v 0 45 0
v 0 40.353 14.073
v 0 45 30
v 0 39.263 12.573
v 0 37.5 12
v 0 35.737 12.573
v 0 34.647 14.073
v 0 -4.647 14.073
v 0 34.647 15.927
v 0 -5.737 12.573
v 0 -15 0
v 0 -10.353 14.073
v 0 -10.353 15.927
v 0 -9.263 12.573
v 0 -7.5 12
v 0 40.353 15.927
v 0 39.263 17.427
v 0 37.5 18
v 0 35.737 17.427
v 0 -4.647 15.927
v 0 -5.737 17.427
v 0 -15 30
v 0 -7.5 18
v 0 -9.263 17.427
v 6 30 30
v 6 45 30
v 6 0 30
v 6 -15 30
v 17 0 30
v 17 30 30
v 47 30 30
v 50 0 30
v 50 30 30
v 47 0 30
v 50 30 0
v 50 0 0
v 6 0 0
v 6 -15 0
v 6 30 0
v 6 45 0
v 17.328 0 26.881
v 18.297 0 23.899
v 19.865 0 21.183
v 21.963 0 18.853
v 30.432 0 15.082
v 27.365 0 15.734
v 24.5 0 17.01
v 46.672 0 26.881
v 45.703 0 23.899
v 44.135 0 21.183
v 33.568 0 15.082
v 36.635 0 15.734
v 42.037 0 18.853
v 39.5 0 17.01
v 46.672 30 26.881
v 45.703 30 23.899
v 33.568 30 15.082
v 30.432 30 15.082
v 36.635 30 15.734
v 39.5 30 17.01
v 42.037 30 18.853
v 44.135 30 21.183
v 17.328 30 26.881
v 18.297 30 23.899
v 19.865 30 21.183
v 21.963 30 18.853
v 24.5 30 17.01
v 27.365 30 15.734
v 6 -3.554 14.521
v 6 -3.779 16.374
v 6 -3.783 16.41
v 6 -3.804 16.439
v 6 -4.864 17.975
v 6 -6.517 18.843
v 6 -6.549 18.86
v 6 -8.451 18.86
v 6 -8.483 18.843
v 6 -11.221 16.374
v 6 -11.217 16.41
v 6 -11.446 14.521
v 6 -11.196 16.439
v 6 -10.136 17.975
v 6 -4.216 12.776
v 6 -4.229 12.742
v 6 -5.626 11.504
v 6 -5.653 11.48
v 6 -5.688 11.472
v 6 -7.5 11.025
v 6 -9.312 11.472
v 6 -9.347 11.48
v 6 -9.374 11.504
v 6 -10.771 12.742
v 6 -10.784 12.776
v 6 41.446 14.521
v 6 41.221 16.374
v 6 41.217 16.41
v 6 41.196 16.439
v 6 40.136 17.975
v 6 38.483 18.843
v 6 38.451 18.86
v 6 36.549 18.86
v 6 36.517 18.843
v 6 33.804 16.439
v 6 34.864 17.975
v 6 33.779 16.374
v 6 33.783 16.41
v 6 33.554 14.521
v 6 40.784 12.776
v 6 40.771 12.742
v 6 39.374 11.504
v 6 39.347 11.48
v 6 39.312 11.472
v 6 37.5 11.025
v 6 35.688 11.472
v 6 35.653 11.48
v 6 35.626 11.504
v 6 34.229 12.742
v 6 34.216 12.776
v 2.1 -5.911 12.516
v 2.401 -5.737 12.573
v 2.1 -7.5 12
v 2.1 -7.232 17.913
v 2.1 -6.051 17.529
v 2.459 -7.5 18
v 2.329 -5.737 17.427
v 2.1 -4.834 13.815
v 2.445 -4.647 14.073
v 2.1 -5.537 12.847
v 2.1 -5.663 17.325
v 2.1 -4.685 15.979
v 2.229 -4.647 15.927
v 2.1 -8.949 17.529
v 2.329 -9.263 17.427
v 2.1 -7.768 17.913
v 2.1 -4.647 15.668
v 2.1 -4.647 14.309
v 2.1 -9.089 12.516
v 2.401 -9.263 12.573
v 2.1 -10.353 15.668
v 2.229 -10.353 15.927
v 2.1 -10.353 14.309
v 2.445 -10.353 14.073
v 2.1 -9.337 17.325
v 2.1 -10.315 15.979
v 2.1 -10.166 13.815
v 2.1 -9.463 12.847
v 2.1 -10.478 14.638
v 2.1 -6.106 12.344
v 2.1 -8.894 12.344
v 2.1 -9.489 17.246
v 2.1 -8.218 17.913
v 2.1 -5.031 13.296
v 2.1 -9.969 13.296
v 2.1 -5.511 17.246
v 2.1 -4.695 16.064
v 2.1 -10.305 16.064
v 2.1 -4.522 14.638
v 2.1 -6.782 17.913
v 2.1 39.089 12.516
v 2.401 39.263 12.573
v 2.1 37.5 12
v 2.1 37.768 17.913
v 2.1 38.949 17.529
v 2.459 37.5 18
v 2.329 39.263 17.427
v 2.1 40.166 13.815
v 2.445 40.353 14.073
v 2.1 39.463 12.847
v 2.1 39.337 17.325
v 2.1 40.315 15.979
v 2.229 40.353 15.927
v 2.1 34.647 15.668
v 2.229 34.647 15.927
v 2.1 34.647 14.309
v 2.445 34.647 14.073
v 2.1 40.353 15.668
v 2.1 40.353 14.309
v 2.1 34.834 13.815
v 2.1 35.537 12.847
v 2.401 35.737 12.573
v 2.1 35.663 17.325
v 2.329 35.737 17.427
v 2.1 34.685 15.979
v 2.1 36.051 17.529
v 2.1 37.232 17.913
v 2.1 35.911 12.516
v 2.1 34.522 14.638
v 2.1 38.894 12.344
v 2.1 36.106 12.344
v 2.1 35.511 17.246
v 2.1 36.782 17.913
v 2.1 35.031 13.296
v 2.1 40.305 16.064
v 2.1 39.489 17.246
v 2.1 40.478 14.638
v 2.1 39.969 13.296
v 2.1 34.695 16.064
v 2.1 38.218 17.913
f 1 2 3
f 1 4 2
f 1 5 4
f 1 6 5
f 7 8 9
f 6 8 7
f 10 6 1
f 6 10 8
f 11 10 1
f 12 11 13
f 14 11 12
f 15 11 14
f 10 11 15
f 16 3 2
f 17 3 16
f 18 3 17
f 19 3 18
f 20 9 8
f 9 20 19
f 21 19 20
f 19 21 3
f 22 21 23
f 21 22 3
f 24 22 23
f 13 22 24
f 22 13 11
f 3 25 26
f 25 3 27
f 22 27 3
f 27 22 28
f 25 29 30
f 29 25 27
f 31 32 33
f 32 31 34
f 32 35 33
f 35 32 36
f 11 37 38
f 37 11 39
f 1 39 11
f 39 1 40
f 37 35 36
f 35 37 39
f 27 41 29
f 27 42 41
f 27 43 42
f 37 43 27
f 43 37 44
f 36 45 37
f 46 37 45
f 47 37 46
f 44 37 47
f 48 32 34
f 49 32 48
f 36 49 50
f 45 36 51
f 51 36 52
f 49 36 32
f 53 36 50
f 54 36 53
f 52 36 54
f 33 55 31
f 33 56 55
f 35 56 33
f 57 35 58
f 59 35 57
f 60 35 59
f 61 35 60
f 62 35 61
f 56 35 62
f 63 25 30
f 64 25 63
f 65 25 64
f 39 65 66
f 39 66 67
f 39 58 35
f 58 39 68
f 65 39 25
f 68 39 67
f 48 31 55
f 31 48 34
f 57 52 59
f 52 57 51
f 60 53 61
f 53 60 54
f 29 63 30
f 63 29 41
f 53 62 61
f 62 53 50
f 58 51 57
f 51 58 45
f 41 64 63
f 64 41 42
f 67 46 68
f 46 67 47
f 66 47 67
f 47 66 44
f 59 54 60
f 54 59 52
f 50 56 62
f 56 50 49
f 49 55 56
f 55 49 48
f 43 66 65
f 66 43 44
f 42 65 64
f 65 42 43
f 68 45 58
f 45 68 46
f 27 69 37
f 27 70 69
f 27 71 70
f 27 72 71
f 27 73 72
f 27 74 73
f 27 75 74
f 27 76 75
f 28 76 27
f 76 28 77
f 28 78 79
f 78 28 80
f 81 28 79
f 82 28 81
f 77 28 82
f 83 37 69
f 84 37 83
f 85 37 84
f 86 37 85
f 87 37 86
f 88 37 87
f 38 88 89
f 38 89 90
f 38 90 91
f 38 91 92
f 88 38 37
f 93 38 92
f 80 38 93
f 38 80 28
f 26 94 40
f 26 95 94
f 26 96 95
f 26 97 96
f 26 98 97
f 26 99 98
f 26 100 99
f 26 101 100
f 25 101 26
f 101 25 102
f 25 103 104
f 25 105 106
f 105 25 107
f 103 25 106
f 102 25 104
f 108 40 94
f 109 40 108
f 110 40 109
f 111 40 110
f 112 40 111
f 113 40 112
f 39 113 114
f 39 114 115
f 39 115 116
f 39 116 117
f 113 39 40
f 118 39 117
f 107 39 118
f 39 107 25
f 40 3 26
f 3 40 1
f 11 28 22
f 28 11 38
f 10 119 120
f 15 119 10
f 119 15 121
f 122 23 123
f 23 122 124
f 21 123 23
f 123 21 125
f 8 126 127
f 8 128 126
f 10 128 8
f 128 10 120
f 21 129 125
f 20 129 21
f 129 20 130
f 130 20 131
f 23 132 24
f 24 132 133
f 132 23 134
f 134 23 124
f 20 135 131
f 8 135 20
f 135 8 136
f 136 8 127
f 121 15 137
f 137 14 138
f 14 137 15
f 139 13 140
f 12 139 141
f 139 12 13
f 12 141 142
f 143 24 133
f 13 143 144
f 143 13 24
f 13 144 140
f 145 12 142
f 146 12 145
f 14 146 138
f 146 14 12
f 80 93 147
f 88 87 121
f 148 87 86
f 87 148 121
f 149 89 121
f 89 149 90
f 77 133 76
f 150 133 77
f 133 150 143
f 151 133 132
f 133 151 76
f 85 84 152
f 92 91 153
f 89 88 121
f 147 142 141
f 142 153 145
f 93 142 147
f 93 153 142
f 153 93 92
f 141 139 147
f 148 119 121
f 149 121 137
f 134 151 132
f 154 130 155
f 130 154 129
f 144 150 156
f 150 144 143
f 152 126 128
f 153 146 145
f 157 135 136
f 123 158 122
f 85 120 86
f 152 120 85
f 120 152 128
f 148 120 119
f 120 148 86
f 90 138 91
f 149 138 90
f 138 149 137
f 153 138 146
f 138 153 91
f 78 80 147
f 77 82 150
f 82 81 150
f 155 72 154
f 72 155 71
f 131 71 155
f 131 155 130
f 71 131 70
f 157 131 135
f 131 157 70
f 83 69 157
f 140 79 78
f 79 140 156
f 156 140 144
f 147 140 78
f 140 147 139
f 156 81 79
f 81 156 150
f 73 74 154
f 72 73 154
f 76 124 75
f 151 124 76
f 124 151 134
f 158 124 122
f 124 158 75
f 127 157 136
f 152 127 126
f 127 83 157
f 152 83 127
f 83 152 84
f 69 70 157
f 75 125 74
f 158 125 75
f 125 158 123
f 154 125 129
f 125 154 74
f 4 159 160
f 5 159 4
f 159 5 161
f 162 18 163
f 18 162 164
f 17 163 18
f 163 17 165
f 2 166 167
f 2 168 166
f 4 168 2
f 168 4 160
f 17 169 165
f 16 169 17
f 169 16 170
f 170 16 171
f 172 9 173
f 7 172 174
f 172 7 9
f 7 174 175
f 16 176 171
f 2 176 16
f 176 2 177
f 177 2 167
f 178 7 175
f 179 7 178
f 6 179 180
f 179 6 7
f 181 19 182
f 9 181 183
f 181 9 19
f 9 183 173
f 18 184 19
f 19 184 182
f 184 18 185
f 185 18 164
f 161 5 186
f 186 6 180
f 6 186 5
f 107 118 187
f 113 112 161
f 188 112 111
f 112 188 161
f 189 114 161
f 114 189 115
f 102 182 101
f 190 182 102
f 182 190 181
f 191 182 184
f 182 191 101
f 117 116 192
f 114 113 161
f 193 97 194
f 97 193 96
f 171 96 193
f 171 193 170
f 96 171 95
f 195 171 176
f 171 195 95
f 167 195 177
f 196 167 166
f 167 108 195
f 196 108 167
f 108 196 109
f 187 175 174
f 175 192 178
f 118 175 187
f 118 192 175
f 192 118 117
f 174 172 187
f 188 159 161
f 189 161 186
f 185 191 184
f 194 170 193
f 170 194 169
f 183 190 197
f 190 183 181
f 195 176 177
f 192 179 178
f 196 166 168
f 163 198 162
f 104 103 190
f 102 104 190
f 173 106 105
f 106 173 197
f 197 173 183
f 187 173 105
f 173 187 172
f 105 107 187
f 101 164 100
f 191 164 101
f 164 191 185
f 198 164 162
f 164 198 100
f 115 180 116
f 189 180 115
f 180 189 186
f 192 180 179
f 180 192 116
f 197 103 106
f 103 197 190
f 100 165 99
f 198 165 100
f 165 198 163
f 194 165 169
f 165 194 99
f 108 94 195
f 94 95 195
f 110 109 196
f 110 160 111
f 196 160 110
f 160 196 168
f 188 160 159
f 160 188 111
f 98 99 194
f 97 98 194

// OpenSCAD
radius = 15;

holder_length = 2 * radius + 20;
holder_width = 30;
holder_height = 30;

mount_thickness = 6;
mount_width = 60;
mount_height = 30;

screw_diameter = 6;
screw_head_diameter = 8;
screw_head_length = 4;

mount_overlap = (mount_width - holder_width) / 2.0;

difference() {
    cube([holder_length, holder_width, holder_height]);
    translate([holder_length - radius - 3, holder_width + 1, holder_height]) rotate([90, 0, 0]) cylinder(r=radius, holder_width + 2);    
}

difference() {
    translate([0, -1 * mount_overlap, 0]) cube([mount_thickness, mount_width, mount_height]);
    translate([0, -mount_overlap / 2, mount_height / 2]) rotate([0, 90, 0]) cylinder(r=screw_diameter / 2, 7);
    translate([mount_thickness - screw_head_length + 0.1, -mount_overlap / 2, mount_height / 2]) rotate([0, 90, 0]) cylinder(r1=screw_diameter / 2, r2=screw_head_diameter / 2, screw_head_length);
    translate([0, holder_width + mount_overlap / 2, mount_height / 2]) rotate([0, 90, 0]) cylinder(r=screw_diameter / 2, 7);
    translate([mount_thickness - screw_head_length + 0.1, holder_width + mount_overlap / 2, mount_height / 2]) rotate([0, 90, 0]) cylinder(r1=screw_diameter / 2, r2=screw_head_diameter / 2, screw_head_length);
}
